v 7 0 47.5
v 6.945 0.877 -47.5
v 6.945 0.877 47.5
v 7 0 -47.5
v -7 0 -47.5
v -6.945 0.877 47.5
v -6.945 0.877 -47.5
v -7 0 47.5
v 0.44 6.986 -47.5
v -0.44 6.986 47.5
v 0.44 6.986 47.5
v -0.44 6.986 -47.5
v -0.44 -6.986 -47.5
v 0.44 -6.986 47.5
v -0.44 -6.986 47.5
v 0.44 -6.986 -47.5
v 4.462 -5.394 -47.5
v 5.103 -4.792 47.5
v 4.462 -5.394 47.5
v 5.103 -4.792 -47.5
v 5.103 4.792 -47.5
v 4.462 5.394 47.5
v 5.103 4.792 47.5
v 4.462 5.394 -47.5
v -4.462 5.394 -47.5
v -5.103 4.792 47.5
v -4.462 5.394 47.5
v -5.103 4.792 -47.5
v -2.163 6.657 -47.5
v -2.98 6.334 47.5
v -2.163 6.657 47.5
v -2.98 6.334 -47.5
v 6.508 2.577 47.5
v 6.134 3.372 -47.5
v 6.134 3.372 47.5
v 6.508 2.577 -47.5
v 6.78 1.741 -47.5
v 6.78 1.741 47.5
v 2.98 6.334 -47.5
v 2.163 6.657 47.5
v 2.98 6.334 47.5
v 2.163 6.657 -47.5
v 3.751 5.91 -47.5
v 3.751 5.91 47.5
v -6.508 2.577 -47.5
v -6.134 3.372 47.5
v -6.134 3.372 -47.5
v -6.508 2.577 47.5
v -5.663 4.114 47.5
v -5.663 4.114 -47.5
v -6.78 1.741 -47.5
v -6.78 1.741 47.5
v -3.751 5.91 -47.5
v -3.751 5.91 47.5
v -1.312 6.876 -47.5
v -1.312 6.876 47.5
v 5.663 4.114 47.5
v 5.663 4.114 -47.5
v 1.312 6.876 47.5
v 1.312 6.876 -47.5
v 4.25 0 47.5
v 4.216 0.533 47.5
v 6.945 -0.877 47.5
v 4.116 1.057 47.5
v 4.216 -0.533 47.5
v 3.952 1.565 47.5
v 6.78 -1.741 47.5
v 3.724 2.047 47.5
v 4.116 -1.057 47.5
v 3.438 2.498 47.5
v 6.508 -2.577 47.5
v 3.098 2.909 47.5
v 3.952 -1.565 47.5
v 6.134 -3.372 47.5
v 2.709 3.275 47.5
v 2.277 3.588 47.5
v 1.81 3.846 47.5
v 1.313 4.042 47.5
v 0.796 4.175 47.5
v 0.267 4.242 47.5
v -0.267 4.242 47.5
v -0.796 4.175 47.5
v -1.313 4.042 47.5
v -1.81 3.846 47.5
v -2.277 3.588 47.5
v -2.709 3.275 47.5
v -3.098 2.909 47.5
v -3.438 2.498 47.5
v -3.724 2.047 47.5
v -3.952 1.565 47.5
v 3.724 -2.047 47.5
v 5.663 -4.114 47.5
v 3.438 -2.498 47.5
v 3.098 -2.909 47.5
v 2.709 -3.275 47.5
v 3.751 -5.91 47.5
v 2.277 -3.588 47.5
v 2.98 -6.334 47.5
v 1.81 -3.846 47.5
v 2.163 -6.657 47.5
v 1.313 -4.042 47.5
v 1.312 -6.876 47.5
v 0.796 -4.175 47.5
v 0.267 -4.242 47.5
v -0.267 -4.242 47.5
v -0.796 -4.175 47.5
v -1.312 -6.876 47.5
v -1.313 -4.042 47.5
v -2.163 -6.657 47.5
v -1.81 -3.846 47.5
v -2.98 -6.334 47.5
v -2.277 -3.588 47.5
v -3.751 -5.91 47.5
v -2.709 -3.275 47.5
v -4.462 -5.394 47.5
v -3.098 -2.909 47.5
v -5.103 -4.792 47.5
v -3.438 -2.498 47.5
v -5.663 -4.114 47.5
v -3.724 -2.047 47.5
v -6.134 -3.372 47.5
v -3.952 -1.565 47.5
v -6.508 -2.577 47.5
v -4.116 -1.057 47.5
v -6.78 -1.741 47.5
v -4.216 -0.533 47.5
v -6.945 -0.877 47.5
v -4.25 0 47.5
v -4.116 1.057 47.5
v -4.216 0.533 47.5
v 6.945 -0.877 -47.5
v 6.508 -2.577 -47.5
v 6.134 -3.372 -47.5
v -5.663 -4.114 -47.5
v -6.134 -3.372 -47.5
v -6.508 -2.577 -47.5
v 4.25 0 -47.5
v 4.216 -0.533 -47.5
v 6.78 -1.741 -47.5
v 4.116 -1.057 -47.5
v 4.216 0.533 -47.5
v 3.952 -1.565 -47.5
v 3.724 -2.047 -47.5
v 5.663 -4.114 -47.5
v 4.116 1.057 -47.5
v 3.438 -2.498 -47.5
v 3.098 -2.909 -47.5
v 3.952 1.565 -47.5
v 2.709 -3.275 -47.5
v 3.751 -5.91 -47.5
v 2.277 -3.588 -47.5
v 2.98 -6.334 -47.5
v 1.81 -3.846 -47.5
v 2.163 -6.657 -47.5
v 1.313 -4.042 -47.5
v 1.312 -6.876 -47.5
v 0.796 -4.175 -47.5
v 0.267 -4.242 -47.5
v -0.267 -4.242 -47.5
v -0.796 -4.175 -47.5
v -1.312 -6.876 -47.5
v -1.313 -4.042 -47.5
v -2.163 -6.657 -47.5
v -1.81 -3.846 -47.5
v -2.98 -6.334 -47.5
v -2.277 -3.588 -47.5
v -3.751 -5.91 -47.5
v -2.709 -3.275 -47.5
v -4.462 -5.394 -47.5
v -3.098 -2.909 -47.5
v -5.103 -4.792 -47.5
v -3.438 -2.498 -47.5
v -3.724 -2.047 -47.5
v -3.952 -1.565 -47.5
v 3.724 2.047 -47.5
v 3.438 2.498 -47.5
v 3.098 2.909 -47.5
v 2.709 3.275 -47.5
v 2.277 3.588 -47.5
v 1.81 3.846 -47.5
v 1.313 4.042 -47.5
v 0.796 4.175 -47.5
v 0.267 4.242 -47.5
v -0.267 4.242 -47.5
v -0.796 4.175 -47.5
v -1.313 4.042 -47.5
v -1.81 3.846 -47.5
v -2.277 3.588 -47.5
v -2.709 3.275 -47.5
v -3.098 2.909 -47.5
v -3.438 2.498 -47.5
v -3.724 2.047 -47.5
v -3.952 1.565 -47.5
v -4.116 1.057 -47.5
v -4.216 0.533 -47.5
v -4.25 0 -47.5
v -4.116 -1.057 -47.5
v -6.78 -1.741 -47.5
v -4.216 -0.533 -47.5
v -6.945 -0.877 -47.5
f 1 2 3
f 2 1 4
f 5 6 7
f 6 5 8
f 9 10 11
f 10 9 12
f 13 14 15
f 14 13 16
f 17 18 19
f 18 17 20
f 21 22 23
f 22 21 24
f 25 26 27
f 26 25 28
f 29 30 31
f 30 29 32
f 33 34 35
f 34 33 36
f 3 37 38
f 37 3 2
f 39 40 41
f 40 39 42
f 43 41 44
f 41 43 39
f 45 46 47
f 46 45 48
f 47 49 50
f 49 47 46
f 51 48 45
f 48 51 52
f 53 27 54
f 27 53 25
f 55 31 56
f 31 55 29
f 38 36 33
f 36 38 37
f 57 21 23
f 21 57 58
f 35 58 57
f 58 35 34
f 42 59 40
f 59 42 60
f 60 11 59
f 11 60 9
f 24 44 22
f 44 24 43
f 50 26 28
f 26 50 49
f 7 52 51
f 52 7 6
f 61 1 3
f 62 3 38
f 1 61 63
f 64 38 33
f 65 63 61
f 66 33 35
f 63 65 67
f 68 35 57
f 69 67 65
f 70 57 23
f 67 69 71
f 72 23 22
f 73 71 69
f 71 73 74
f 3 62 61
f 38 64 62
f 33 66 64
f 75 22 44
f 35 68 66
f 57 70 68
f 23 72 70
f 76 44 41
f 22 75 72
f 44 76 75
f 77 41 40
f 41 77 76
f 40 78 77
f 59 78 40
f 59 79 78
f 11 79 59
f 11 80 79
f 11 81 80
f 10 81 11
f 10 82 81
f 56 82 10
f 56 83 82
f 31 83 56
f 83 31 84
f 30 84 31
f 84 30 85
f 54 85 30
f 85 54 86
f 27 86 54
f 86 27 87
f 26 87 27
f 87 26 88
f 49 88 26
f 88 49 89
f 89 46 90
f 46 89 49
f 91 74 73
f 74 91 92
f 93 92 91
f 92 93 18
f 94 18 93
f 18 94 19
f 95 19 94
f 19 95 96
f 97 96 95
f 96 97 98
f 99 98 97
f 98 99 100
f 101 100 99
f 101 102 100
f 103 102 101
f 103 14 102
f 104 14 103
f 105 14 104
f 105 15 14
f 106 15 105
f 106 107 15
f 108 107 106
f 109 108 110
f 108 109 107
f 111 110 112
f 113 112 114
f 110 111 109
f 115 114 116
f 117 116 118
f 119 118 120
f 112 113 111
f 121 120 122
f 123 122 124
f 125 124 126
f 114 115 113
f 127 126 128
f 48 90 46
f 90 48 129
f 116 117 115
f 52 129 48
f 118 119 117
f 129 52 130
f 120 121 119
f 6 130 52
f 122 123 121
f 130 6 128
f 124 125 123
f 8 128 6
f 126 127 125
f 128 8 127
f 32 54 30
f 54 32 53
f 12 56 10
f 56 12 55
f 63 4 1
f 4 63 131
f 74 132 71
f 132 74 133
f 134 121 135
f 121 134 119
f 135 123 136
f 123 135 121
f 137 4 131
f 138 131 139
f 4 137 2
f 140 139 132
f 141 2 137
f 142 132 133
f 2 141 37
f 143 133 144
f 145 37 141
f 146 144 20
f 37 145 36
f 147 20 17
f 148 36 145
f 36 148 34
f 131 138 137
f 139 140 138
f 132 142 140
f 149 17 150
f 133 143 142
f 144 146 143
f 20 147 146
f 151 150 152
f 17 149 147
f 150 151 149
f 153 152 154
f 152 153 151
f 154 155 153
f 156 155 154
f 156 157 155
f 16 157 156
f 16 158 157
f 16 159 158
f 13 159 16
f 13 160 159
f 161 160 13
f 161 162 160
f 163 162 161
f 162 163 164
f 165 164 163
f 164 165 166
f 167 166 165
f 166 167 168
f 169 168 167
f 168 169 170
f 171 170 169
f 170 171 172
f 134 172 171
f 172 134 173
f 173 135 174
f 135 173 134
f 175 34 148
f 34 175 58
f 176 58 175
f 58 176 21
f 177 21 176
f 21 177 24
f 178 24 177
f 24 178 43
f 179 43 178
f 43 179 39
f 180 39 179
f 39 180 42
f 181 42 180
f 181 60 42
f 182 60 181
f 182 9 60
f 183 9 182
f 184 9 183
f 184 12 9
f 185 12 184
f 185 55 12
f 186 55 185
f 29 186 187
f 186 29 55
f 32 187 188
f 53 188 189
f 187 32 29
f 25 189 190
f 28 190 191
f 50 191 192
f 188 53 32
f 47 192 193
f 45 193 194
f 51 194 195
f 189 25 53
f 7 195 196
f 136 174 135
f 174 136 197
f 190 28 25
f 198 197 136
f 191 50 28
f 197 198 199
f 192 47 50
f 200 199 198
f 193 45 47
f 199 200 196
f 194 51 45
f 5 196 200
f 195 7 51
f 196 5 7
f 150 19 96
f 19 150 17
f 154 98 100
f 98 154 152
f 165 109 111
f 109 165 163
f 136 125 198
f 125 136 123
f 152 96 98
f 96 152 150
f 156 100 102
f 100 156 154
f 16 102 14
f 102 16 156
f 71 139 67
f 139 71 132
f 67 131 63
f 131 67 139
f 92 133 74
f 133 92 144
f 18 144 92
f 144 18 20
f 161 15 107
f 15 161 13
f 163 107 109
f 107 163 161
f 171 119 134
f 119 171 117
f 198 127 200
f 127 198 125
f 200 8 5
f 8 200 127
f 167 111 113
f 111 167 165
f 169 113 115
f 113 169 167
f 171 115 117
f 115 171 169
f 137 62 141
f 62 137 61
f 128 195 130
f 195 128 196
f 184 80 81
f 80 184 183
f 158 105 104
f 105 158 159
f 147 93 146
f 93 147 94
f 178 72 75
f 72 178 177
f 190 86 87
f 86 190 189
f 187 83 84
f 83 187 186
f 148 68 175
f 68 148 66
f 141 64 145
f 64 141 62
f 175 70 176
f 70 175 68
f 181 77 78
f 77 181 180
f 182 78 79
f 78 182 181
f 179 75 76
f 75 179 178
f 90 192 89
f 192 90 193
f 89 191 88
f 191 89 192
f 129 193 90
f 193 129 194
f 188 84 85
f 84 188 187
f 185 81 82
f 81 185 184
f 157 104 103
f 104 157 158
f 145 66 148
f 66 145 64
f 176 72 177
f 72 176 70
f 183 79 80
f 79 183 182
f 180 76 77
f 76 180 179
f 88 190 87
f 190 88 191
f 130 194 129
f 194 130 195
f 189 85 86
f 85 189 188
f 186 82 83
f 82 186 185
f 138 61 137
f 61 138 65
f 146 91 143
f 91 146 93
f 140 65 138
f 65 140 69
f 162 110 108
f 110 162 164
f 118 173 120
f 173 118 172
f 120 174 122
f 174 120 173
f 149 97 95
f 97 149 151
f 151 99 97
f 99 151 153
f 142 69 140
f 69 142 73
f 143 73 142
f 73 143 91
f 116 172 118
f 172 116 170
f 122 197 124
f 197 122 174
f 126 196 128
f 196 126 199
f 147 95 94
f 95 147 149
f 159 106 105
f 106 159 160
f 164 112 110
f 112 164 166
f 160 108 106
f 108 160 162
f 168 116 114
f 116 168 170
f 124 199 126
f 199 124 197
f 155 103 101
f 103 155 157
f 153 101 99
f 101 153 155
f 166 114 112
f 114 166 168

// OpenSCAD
$fn = 50;


difference() {
	union() {
		translate(v = [0, 0, -47.5000000000]) {
			cylinder(h = 95, r = 7.0000000000);
		}
	}
	union() {
		translate(v = [0, 0, -100.0000000000]) {
			cylinder(h = 200, r = 4.2500000000);
		}
	}
}
